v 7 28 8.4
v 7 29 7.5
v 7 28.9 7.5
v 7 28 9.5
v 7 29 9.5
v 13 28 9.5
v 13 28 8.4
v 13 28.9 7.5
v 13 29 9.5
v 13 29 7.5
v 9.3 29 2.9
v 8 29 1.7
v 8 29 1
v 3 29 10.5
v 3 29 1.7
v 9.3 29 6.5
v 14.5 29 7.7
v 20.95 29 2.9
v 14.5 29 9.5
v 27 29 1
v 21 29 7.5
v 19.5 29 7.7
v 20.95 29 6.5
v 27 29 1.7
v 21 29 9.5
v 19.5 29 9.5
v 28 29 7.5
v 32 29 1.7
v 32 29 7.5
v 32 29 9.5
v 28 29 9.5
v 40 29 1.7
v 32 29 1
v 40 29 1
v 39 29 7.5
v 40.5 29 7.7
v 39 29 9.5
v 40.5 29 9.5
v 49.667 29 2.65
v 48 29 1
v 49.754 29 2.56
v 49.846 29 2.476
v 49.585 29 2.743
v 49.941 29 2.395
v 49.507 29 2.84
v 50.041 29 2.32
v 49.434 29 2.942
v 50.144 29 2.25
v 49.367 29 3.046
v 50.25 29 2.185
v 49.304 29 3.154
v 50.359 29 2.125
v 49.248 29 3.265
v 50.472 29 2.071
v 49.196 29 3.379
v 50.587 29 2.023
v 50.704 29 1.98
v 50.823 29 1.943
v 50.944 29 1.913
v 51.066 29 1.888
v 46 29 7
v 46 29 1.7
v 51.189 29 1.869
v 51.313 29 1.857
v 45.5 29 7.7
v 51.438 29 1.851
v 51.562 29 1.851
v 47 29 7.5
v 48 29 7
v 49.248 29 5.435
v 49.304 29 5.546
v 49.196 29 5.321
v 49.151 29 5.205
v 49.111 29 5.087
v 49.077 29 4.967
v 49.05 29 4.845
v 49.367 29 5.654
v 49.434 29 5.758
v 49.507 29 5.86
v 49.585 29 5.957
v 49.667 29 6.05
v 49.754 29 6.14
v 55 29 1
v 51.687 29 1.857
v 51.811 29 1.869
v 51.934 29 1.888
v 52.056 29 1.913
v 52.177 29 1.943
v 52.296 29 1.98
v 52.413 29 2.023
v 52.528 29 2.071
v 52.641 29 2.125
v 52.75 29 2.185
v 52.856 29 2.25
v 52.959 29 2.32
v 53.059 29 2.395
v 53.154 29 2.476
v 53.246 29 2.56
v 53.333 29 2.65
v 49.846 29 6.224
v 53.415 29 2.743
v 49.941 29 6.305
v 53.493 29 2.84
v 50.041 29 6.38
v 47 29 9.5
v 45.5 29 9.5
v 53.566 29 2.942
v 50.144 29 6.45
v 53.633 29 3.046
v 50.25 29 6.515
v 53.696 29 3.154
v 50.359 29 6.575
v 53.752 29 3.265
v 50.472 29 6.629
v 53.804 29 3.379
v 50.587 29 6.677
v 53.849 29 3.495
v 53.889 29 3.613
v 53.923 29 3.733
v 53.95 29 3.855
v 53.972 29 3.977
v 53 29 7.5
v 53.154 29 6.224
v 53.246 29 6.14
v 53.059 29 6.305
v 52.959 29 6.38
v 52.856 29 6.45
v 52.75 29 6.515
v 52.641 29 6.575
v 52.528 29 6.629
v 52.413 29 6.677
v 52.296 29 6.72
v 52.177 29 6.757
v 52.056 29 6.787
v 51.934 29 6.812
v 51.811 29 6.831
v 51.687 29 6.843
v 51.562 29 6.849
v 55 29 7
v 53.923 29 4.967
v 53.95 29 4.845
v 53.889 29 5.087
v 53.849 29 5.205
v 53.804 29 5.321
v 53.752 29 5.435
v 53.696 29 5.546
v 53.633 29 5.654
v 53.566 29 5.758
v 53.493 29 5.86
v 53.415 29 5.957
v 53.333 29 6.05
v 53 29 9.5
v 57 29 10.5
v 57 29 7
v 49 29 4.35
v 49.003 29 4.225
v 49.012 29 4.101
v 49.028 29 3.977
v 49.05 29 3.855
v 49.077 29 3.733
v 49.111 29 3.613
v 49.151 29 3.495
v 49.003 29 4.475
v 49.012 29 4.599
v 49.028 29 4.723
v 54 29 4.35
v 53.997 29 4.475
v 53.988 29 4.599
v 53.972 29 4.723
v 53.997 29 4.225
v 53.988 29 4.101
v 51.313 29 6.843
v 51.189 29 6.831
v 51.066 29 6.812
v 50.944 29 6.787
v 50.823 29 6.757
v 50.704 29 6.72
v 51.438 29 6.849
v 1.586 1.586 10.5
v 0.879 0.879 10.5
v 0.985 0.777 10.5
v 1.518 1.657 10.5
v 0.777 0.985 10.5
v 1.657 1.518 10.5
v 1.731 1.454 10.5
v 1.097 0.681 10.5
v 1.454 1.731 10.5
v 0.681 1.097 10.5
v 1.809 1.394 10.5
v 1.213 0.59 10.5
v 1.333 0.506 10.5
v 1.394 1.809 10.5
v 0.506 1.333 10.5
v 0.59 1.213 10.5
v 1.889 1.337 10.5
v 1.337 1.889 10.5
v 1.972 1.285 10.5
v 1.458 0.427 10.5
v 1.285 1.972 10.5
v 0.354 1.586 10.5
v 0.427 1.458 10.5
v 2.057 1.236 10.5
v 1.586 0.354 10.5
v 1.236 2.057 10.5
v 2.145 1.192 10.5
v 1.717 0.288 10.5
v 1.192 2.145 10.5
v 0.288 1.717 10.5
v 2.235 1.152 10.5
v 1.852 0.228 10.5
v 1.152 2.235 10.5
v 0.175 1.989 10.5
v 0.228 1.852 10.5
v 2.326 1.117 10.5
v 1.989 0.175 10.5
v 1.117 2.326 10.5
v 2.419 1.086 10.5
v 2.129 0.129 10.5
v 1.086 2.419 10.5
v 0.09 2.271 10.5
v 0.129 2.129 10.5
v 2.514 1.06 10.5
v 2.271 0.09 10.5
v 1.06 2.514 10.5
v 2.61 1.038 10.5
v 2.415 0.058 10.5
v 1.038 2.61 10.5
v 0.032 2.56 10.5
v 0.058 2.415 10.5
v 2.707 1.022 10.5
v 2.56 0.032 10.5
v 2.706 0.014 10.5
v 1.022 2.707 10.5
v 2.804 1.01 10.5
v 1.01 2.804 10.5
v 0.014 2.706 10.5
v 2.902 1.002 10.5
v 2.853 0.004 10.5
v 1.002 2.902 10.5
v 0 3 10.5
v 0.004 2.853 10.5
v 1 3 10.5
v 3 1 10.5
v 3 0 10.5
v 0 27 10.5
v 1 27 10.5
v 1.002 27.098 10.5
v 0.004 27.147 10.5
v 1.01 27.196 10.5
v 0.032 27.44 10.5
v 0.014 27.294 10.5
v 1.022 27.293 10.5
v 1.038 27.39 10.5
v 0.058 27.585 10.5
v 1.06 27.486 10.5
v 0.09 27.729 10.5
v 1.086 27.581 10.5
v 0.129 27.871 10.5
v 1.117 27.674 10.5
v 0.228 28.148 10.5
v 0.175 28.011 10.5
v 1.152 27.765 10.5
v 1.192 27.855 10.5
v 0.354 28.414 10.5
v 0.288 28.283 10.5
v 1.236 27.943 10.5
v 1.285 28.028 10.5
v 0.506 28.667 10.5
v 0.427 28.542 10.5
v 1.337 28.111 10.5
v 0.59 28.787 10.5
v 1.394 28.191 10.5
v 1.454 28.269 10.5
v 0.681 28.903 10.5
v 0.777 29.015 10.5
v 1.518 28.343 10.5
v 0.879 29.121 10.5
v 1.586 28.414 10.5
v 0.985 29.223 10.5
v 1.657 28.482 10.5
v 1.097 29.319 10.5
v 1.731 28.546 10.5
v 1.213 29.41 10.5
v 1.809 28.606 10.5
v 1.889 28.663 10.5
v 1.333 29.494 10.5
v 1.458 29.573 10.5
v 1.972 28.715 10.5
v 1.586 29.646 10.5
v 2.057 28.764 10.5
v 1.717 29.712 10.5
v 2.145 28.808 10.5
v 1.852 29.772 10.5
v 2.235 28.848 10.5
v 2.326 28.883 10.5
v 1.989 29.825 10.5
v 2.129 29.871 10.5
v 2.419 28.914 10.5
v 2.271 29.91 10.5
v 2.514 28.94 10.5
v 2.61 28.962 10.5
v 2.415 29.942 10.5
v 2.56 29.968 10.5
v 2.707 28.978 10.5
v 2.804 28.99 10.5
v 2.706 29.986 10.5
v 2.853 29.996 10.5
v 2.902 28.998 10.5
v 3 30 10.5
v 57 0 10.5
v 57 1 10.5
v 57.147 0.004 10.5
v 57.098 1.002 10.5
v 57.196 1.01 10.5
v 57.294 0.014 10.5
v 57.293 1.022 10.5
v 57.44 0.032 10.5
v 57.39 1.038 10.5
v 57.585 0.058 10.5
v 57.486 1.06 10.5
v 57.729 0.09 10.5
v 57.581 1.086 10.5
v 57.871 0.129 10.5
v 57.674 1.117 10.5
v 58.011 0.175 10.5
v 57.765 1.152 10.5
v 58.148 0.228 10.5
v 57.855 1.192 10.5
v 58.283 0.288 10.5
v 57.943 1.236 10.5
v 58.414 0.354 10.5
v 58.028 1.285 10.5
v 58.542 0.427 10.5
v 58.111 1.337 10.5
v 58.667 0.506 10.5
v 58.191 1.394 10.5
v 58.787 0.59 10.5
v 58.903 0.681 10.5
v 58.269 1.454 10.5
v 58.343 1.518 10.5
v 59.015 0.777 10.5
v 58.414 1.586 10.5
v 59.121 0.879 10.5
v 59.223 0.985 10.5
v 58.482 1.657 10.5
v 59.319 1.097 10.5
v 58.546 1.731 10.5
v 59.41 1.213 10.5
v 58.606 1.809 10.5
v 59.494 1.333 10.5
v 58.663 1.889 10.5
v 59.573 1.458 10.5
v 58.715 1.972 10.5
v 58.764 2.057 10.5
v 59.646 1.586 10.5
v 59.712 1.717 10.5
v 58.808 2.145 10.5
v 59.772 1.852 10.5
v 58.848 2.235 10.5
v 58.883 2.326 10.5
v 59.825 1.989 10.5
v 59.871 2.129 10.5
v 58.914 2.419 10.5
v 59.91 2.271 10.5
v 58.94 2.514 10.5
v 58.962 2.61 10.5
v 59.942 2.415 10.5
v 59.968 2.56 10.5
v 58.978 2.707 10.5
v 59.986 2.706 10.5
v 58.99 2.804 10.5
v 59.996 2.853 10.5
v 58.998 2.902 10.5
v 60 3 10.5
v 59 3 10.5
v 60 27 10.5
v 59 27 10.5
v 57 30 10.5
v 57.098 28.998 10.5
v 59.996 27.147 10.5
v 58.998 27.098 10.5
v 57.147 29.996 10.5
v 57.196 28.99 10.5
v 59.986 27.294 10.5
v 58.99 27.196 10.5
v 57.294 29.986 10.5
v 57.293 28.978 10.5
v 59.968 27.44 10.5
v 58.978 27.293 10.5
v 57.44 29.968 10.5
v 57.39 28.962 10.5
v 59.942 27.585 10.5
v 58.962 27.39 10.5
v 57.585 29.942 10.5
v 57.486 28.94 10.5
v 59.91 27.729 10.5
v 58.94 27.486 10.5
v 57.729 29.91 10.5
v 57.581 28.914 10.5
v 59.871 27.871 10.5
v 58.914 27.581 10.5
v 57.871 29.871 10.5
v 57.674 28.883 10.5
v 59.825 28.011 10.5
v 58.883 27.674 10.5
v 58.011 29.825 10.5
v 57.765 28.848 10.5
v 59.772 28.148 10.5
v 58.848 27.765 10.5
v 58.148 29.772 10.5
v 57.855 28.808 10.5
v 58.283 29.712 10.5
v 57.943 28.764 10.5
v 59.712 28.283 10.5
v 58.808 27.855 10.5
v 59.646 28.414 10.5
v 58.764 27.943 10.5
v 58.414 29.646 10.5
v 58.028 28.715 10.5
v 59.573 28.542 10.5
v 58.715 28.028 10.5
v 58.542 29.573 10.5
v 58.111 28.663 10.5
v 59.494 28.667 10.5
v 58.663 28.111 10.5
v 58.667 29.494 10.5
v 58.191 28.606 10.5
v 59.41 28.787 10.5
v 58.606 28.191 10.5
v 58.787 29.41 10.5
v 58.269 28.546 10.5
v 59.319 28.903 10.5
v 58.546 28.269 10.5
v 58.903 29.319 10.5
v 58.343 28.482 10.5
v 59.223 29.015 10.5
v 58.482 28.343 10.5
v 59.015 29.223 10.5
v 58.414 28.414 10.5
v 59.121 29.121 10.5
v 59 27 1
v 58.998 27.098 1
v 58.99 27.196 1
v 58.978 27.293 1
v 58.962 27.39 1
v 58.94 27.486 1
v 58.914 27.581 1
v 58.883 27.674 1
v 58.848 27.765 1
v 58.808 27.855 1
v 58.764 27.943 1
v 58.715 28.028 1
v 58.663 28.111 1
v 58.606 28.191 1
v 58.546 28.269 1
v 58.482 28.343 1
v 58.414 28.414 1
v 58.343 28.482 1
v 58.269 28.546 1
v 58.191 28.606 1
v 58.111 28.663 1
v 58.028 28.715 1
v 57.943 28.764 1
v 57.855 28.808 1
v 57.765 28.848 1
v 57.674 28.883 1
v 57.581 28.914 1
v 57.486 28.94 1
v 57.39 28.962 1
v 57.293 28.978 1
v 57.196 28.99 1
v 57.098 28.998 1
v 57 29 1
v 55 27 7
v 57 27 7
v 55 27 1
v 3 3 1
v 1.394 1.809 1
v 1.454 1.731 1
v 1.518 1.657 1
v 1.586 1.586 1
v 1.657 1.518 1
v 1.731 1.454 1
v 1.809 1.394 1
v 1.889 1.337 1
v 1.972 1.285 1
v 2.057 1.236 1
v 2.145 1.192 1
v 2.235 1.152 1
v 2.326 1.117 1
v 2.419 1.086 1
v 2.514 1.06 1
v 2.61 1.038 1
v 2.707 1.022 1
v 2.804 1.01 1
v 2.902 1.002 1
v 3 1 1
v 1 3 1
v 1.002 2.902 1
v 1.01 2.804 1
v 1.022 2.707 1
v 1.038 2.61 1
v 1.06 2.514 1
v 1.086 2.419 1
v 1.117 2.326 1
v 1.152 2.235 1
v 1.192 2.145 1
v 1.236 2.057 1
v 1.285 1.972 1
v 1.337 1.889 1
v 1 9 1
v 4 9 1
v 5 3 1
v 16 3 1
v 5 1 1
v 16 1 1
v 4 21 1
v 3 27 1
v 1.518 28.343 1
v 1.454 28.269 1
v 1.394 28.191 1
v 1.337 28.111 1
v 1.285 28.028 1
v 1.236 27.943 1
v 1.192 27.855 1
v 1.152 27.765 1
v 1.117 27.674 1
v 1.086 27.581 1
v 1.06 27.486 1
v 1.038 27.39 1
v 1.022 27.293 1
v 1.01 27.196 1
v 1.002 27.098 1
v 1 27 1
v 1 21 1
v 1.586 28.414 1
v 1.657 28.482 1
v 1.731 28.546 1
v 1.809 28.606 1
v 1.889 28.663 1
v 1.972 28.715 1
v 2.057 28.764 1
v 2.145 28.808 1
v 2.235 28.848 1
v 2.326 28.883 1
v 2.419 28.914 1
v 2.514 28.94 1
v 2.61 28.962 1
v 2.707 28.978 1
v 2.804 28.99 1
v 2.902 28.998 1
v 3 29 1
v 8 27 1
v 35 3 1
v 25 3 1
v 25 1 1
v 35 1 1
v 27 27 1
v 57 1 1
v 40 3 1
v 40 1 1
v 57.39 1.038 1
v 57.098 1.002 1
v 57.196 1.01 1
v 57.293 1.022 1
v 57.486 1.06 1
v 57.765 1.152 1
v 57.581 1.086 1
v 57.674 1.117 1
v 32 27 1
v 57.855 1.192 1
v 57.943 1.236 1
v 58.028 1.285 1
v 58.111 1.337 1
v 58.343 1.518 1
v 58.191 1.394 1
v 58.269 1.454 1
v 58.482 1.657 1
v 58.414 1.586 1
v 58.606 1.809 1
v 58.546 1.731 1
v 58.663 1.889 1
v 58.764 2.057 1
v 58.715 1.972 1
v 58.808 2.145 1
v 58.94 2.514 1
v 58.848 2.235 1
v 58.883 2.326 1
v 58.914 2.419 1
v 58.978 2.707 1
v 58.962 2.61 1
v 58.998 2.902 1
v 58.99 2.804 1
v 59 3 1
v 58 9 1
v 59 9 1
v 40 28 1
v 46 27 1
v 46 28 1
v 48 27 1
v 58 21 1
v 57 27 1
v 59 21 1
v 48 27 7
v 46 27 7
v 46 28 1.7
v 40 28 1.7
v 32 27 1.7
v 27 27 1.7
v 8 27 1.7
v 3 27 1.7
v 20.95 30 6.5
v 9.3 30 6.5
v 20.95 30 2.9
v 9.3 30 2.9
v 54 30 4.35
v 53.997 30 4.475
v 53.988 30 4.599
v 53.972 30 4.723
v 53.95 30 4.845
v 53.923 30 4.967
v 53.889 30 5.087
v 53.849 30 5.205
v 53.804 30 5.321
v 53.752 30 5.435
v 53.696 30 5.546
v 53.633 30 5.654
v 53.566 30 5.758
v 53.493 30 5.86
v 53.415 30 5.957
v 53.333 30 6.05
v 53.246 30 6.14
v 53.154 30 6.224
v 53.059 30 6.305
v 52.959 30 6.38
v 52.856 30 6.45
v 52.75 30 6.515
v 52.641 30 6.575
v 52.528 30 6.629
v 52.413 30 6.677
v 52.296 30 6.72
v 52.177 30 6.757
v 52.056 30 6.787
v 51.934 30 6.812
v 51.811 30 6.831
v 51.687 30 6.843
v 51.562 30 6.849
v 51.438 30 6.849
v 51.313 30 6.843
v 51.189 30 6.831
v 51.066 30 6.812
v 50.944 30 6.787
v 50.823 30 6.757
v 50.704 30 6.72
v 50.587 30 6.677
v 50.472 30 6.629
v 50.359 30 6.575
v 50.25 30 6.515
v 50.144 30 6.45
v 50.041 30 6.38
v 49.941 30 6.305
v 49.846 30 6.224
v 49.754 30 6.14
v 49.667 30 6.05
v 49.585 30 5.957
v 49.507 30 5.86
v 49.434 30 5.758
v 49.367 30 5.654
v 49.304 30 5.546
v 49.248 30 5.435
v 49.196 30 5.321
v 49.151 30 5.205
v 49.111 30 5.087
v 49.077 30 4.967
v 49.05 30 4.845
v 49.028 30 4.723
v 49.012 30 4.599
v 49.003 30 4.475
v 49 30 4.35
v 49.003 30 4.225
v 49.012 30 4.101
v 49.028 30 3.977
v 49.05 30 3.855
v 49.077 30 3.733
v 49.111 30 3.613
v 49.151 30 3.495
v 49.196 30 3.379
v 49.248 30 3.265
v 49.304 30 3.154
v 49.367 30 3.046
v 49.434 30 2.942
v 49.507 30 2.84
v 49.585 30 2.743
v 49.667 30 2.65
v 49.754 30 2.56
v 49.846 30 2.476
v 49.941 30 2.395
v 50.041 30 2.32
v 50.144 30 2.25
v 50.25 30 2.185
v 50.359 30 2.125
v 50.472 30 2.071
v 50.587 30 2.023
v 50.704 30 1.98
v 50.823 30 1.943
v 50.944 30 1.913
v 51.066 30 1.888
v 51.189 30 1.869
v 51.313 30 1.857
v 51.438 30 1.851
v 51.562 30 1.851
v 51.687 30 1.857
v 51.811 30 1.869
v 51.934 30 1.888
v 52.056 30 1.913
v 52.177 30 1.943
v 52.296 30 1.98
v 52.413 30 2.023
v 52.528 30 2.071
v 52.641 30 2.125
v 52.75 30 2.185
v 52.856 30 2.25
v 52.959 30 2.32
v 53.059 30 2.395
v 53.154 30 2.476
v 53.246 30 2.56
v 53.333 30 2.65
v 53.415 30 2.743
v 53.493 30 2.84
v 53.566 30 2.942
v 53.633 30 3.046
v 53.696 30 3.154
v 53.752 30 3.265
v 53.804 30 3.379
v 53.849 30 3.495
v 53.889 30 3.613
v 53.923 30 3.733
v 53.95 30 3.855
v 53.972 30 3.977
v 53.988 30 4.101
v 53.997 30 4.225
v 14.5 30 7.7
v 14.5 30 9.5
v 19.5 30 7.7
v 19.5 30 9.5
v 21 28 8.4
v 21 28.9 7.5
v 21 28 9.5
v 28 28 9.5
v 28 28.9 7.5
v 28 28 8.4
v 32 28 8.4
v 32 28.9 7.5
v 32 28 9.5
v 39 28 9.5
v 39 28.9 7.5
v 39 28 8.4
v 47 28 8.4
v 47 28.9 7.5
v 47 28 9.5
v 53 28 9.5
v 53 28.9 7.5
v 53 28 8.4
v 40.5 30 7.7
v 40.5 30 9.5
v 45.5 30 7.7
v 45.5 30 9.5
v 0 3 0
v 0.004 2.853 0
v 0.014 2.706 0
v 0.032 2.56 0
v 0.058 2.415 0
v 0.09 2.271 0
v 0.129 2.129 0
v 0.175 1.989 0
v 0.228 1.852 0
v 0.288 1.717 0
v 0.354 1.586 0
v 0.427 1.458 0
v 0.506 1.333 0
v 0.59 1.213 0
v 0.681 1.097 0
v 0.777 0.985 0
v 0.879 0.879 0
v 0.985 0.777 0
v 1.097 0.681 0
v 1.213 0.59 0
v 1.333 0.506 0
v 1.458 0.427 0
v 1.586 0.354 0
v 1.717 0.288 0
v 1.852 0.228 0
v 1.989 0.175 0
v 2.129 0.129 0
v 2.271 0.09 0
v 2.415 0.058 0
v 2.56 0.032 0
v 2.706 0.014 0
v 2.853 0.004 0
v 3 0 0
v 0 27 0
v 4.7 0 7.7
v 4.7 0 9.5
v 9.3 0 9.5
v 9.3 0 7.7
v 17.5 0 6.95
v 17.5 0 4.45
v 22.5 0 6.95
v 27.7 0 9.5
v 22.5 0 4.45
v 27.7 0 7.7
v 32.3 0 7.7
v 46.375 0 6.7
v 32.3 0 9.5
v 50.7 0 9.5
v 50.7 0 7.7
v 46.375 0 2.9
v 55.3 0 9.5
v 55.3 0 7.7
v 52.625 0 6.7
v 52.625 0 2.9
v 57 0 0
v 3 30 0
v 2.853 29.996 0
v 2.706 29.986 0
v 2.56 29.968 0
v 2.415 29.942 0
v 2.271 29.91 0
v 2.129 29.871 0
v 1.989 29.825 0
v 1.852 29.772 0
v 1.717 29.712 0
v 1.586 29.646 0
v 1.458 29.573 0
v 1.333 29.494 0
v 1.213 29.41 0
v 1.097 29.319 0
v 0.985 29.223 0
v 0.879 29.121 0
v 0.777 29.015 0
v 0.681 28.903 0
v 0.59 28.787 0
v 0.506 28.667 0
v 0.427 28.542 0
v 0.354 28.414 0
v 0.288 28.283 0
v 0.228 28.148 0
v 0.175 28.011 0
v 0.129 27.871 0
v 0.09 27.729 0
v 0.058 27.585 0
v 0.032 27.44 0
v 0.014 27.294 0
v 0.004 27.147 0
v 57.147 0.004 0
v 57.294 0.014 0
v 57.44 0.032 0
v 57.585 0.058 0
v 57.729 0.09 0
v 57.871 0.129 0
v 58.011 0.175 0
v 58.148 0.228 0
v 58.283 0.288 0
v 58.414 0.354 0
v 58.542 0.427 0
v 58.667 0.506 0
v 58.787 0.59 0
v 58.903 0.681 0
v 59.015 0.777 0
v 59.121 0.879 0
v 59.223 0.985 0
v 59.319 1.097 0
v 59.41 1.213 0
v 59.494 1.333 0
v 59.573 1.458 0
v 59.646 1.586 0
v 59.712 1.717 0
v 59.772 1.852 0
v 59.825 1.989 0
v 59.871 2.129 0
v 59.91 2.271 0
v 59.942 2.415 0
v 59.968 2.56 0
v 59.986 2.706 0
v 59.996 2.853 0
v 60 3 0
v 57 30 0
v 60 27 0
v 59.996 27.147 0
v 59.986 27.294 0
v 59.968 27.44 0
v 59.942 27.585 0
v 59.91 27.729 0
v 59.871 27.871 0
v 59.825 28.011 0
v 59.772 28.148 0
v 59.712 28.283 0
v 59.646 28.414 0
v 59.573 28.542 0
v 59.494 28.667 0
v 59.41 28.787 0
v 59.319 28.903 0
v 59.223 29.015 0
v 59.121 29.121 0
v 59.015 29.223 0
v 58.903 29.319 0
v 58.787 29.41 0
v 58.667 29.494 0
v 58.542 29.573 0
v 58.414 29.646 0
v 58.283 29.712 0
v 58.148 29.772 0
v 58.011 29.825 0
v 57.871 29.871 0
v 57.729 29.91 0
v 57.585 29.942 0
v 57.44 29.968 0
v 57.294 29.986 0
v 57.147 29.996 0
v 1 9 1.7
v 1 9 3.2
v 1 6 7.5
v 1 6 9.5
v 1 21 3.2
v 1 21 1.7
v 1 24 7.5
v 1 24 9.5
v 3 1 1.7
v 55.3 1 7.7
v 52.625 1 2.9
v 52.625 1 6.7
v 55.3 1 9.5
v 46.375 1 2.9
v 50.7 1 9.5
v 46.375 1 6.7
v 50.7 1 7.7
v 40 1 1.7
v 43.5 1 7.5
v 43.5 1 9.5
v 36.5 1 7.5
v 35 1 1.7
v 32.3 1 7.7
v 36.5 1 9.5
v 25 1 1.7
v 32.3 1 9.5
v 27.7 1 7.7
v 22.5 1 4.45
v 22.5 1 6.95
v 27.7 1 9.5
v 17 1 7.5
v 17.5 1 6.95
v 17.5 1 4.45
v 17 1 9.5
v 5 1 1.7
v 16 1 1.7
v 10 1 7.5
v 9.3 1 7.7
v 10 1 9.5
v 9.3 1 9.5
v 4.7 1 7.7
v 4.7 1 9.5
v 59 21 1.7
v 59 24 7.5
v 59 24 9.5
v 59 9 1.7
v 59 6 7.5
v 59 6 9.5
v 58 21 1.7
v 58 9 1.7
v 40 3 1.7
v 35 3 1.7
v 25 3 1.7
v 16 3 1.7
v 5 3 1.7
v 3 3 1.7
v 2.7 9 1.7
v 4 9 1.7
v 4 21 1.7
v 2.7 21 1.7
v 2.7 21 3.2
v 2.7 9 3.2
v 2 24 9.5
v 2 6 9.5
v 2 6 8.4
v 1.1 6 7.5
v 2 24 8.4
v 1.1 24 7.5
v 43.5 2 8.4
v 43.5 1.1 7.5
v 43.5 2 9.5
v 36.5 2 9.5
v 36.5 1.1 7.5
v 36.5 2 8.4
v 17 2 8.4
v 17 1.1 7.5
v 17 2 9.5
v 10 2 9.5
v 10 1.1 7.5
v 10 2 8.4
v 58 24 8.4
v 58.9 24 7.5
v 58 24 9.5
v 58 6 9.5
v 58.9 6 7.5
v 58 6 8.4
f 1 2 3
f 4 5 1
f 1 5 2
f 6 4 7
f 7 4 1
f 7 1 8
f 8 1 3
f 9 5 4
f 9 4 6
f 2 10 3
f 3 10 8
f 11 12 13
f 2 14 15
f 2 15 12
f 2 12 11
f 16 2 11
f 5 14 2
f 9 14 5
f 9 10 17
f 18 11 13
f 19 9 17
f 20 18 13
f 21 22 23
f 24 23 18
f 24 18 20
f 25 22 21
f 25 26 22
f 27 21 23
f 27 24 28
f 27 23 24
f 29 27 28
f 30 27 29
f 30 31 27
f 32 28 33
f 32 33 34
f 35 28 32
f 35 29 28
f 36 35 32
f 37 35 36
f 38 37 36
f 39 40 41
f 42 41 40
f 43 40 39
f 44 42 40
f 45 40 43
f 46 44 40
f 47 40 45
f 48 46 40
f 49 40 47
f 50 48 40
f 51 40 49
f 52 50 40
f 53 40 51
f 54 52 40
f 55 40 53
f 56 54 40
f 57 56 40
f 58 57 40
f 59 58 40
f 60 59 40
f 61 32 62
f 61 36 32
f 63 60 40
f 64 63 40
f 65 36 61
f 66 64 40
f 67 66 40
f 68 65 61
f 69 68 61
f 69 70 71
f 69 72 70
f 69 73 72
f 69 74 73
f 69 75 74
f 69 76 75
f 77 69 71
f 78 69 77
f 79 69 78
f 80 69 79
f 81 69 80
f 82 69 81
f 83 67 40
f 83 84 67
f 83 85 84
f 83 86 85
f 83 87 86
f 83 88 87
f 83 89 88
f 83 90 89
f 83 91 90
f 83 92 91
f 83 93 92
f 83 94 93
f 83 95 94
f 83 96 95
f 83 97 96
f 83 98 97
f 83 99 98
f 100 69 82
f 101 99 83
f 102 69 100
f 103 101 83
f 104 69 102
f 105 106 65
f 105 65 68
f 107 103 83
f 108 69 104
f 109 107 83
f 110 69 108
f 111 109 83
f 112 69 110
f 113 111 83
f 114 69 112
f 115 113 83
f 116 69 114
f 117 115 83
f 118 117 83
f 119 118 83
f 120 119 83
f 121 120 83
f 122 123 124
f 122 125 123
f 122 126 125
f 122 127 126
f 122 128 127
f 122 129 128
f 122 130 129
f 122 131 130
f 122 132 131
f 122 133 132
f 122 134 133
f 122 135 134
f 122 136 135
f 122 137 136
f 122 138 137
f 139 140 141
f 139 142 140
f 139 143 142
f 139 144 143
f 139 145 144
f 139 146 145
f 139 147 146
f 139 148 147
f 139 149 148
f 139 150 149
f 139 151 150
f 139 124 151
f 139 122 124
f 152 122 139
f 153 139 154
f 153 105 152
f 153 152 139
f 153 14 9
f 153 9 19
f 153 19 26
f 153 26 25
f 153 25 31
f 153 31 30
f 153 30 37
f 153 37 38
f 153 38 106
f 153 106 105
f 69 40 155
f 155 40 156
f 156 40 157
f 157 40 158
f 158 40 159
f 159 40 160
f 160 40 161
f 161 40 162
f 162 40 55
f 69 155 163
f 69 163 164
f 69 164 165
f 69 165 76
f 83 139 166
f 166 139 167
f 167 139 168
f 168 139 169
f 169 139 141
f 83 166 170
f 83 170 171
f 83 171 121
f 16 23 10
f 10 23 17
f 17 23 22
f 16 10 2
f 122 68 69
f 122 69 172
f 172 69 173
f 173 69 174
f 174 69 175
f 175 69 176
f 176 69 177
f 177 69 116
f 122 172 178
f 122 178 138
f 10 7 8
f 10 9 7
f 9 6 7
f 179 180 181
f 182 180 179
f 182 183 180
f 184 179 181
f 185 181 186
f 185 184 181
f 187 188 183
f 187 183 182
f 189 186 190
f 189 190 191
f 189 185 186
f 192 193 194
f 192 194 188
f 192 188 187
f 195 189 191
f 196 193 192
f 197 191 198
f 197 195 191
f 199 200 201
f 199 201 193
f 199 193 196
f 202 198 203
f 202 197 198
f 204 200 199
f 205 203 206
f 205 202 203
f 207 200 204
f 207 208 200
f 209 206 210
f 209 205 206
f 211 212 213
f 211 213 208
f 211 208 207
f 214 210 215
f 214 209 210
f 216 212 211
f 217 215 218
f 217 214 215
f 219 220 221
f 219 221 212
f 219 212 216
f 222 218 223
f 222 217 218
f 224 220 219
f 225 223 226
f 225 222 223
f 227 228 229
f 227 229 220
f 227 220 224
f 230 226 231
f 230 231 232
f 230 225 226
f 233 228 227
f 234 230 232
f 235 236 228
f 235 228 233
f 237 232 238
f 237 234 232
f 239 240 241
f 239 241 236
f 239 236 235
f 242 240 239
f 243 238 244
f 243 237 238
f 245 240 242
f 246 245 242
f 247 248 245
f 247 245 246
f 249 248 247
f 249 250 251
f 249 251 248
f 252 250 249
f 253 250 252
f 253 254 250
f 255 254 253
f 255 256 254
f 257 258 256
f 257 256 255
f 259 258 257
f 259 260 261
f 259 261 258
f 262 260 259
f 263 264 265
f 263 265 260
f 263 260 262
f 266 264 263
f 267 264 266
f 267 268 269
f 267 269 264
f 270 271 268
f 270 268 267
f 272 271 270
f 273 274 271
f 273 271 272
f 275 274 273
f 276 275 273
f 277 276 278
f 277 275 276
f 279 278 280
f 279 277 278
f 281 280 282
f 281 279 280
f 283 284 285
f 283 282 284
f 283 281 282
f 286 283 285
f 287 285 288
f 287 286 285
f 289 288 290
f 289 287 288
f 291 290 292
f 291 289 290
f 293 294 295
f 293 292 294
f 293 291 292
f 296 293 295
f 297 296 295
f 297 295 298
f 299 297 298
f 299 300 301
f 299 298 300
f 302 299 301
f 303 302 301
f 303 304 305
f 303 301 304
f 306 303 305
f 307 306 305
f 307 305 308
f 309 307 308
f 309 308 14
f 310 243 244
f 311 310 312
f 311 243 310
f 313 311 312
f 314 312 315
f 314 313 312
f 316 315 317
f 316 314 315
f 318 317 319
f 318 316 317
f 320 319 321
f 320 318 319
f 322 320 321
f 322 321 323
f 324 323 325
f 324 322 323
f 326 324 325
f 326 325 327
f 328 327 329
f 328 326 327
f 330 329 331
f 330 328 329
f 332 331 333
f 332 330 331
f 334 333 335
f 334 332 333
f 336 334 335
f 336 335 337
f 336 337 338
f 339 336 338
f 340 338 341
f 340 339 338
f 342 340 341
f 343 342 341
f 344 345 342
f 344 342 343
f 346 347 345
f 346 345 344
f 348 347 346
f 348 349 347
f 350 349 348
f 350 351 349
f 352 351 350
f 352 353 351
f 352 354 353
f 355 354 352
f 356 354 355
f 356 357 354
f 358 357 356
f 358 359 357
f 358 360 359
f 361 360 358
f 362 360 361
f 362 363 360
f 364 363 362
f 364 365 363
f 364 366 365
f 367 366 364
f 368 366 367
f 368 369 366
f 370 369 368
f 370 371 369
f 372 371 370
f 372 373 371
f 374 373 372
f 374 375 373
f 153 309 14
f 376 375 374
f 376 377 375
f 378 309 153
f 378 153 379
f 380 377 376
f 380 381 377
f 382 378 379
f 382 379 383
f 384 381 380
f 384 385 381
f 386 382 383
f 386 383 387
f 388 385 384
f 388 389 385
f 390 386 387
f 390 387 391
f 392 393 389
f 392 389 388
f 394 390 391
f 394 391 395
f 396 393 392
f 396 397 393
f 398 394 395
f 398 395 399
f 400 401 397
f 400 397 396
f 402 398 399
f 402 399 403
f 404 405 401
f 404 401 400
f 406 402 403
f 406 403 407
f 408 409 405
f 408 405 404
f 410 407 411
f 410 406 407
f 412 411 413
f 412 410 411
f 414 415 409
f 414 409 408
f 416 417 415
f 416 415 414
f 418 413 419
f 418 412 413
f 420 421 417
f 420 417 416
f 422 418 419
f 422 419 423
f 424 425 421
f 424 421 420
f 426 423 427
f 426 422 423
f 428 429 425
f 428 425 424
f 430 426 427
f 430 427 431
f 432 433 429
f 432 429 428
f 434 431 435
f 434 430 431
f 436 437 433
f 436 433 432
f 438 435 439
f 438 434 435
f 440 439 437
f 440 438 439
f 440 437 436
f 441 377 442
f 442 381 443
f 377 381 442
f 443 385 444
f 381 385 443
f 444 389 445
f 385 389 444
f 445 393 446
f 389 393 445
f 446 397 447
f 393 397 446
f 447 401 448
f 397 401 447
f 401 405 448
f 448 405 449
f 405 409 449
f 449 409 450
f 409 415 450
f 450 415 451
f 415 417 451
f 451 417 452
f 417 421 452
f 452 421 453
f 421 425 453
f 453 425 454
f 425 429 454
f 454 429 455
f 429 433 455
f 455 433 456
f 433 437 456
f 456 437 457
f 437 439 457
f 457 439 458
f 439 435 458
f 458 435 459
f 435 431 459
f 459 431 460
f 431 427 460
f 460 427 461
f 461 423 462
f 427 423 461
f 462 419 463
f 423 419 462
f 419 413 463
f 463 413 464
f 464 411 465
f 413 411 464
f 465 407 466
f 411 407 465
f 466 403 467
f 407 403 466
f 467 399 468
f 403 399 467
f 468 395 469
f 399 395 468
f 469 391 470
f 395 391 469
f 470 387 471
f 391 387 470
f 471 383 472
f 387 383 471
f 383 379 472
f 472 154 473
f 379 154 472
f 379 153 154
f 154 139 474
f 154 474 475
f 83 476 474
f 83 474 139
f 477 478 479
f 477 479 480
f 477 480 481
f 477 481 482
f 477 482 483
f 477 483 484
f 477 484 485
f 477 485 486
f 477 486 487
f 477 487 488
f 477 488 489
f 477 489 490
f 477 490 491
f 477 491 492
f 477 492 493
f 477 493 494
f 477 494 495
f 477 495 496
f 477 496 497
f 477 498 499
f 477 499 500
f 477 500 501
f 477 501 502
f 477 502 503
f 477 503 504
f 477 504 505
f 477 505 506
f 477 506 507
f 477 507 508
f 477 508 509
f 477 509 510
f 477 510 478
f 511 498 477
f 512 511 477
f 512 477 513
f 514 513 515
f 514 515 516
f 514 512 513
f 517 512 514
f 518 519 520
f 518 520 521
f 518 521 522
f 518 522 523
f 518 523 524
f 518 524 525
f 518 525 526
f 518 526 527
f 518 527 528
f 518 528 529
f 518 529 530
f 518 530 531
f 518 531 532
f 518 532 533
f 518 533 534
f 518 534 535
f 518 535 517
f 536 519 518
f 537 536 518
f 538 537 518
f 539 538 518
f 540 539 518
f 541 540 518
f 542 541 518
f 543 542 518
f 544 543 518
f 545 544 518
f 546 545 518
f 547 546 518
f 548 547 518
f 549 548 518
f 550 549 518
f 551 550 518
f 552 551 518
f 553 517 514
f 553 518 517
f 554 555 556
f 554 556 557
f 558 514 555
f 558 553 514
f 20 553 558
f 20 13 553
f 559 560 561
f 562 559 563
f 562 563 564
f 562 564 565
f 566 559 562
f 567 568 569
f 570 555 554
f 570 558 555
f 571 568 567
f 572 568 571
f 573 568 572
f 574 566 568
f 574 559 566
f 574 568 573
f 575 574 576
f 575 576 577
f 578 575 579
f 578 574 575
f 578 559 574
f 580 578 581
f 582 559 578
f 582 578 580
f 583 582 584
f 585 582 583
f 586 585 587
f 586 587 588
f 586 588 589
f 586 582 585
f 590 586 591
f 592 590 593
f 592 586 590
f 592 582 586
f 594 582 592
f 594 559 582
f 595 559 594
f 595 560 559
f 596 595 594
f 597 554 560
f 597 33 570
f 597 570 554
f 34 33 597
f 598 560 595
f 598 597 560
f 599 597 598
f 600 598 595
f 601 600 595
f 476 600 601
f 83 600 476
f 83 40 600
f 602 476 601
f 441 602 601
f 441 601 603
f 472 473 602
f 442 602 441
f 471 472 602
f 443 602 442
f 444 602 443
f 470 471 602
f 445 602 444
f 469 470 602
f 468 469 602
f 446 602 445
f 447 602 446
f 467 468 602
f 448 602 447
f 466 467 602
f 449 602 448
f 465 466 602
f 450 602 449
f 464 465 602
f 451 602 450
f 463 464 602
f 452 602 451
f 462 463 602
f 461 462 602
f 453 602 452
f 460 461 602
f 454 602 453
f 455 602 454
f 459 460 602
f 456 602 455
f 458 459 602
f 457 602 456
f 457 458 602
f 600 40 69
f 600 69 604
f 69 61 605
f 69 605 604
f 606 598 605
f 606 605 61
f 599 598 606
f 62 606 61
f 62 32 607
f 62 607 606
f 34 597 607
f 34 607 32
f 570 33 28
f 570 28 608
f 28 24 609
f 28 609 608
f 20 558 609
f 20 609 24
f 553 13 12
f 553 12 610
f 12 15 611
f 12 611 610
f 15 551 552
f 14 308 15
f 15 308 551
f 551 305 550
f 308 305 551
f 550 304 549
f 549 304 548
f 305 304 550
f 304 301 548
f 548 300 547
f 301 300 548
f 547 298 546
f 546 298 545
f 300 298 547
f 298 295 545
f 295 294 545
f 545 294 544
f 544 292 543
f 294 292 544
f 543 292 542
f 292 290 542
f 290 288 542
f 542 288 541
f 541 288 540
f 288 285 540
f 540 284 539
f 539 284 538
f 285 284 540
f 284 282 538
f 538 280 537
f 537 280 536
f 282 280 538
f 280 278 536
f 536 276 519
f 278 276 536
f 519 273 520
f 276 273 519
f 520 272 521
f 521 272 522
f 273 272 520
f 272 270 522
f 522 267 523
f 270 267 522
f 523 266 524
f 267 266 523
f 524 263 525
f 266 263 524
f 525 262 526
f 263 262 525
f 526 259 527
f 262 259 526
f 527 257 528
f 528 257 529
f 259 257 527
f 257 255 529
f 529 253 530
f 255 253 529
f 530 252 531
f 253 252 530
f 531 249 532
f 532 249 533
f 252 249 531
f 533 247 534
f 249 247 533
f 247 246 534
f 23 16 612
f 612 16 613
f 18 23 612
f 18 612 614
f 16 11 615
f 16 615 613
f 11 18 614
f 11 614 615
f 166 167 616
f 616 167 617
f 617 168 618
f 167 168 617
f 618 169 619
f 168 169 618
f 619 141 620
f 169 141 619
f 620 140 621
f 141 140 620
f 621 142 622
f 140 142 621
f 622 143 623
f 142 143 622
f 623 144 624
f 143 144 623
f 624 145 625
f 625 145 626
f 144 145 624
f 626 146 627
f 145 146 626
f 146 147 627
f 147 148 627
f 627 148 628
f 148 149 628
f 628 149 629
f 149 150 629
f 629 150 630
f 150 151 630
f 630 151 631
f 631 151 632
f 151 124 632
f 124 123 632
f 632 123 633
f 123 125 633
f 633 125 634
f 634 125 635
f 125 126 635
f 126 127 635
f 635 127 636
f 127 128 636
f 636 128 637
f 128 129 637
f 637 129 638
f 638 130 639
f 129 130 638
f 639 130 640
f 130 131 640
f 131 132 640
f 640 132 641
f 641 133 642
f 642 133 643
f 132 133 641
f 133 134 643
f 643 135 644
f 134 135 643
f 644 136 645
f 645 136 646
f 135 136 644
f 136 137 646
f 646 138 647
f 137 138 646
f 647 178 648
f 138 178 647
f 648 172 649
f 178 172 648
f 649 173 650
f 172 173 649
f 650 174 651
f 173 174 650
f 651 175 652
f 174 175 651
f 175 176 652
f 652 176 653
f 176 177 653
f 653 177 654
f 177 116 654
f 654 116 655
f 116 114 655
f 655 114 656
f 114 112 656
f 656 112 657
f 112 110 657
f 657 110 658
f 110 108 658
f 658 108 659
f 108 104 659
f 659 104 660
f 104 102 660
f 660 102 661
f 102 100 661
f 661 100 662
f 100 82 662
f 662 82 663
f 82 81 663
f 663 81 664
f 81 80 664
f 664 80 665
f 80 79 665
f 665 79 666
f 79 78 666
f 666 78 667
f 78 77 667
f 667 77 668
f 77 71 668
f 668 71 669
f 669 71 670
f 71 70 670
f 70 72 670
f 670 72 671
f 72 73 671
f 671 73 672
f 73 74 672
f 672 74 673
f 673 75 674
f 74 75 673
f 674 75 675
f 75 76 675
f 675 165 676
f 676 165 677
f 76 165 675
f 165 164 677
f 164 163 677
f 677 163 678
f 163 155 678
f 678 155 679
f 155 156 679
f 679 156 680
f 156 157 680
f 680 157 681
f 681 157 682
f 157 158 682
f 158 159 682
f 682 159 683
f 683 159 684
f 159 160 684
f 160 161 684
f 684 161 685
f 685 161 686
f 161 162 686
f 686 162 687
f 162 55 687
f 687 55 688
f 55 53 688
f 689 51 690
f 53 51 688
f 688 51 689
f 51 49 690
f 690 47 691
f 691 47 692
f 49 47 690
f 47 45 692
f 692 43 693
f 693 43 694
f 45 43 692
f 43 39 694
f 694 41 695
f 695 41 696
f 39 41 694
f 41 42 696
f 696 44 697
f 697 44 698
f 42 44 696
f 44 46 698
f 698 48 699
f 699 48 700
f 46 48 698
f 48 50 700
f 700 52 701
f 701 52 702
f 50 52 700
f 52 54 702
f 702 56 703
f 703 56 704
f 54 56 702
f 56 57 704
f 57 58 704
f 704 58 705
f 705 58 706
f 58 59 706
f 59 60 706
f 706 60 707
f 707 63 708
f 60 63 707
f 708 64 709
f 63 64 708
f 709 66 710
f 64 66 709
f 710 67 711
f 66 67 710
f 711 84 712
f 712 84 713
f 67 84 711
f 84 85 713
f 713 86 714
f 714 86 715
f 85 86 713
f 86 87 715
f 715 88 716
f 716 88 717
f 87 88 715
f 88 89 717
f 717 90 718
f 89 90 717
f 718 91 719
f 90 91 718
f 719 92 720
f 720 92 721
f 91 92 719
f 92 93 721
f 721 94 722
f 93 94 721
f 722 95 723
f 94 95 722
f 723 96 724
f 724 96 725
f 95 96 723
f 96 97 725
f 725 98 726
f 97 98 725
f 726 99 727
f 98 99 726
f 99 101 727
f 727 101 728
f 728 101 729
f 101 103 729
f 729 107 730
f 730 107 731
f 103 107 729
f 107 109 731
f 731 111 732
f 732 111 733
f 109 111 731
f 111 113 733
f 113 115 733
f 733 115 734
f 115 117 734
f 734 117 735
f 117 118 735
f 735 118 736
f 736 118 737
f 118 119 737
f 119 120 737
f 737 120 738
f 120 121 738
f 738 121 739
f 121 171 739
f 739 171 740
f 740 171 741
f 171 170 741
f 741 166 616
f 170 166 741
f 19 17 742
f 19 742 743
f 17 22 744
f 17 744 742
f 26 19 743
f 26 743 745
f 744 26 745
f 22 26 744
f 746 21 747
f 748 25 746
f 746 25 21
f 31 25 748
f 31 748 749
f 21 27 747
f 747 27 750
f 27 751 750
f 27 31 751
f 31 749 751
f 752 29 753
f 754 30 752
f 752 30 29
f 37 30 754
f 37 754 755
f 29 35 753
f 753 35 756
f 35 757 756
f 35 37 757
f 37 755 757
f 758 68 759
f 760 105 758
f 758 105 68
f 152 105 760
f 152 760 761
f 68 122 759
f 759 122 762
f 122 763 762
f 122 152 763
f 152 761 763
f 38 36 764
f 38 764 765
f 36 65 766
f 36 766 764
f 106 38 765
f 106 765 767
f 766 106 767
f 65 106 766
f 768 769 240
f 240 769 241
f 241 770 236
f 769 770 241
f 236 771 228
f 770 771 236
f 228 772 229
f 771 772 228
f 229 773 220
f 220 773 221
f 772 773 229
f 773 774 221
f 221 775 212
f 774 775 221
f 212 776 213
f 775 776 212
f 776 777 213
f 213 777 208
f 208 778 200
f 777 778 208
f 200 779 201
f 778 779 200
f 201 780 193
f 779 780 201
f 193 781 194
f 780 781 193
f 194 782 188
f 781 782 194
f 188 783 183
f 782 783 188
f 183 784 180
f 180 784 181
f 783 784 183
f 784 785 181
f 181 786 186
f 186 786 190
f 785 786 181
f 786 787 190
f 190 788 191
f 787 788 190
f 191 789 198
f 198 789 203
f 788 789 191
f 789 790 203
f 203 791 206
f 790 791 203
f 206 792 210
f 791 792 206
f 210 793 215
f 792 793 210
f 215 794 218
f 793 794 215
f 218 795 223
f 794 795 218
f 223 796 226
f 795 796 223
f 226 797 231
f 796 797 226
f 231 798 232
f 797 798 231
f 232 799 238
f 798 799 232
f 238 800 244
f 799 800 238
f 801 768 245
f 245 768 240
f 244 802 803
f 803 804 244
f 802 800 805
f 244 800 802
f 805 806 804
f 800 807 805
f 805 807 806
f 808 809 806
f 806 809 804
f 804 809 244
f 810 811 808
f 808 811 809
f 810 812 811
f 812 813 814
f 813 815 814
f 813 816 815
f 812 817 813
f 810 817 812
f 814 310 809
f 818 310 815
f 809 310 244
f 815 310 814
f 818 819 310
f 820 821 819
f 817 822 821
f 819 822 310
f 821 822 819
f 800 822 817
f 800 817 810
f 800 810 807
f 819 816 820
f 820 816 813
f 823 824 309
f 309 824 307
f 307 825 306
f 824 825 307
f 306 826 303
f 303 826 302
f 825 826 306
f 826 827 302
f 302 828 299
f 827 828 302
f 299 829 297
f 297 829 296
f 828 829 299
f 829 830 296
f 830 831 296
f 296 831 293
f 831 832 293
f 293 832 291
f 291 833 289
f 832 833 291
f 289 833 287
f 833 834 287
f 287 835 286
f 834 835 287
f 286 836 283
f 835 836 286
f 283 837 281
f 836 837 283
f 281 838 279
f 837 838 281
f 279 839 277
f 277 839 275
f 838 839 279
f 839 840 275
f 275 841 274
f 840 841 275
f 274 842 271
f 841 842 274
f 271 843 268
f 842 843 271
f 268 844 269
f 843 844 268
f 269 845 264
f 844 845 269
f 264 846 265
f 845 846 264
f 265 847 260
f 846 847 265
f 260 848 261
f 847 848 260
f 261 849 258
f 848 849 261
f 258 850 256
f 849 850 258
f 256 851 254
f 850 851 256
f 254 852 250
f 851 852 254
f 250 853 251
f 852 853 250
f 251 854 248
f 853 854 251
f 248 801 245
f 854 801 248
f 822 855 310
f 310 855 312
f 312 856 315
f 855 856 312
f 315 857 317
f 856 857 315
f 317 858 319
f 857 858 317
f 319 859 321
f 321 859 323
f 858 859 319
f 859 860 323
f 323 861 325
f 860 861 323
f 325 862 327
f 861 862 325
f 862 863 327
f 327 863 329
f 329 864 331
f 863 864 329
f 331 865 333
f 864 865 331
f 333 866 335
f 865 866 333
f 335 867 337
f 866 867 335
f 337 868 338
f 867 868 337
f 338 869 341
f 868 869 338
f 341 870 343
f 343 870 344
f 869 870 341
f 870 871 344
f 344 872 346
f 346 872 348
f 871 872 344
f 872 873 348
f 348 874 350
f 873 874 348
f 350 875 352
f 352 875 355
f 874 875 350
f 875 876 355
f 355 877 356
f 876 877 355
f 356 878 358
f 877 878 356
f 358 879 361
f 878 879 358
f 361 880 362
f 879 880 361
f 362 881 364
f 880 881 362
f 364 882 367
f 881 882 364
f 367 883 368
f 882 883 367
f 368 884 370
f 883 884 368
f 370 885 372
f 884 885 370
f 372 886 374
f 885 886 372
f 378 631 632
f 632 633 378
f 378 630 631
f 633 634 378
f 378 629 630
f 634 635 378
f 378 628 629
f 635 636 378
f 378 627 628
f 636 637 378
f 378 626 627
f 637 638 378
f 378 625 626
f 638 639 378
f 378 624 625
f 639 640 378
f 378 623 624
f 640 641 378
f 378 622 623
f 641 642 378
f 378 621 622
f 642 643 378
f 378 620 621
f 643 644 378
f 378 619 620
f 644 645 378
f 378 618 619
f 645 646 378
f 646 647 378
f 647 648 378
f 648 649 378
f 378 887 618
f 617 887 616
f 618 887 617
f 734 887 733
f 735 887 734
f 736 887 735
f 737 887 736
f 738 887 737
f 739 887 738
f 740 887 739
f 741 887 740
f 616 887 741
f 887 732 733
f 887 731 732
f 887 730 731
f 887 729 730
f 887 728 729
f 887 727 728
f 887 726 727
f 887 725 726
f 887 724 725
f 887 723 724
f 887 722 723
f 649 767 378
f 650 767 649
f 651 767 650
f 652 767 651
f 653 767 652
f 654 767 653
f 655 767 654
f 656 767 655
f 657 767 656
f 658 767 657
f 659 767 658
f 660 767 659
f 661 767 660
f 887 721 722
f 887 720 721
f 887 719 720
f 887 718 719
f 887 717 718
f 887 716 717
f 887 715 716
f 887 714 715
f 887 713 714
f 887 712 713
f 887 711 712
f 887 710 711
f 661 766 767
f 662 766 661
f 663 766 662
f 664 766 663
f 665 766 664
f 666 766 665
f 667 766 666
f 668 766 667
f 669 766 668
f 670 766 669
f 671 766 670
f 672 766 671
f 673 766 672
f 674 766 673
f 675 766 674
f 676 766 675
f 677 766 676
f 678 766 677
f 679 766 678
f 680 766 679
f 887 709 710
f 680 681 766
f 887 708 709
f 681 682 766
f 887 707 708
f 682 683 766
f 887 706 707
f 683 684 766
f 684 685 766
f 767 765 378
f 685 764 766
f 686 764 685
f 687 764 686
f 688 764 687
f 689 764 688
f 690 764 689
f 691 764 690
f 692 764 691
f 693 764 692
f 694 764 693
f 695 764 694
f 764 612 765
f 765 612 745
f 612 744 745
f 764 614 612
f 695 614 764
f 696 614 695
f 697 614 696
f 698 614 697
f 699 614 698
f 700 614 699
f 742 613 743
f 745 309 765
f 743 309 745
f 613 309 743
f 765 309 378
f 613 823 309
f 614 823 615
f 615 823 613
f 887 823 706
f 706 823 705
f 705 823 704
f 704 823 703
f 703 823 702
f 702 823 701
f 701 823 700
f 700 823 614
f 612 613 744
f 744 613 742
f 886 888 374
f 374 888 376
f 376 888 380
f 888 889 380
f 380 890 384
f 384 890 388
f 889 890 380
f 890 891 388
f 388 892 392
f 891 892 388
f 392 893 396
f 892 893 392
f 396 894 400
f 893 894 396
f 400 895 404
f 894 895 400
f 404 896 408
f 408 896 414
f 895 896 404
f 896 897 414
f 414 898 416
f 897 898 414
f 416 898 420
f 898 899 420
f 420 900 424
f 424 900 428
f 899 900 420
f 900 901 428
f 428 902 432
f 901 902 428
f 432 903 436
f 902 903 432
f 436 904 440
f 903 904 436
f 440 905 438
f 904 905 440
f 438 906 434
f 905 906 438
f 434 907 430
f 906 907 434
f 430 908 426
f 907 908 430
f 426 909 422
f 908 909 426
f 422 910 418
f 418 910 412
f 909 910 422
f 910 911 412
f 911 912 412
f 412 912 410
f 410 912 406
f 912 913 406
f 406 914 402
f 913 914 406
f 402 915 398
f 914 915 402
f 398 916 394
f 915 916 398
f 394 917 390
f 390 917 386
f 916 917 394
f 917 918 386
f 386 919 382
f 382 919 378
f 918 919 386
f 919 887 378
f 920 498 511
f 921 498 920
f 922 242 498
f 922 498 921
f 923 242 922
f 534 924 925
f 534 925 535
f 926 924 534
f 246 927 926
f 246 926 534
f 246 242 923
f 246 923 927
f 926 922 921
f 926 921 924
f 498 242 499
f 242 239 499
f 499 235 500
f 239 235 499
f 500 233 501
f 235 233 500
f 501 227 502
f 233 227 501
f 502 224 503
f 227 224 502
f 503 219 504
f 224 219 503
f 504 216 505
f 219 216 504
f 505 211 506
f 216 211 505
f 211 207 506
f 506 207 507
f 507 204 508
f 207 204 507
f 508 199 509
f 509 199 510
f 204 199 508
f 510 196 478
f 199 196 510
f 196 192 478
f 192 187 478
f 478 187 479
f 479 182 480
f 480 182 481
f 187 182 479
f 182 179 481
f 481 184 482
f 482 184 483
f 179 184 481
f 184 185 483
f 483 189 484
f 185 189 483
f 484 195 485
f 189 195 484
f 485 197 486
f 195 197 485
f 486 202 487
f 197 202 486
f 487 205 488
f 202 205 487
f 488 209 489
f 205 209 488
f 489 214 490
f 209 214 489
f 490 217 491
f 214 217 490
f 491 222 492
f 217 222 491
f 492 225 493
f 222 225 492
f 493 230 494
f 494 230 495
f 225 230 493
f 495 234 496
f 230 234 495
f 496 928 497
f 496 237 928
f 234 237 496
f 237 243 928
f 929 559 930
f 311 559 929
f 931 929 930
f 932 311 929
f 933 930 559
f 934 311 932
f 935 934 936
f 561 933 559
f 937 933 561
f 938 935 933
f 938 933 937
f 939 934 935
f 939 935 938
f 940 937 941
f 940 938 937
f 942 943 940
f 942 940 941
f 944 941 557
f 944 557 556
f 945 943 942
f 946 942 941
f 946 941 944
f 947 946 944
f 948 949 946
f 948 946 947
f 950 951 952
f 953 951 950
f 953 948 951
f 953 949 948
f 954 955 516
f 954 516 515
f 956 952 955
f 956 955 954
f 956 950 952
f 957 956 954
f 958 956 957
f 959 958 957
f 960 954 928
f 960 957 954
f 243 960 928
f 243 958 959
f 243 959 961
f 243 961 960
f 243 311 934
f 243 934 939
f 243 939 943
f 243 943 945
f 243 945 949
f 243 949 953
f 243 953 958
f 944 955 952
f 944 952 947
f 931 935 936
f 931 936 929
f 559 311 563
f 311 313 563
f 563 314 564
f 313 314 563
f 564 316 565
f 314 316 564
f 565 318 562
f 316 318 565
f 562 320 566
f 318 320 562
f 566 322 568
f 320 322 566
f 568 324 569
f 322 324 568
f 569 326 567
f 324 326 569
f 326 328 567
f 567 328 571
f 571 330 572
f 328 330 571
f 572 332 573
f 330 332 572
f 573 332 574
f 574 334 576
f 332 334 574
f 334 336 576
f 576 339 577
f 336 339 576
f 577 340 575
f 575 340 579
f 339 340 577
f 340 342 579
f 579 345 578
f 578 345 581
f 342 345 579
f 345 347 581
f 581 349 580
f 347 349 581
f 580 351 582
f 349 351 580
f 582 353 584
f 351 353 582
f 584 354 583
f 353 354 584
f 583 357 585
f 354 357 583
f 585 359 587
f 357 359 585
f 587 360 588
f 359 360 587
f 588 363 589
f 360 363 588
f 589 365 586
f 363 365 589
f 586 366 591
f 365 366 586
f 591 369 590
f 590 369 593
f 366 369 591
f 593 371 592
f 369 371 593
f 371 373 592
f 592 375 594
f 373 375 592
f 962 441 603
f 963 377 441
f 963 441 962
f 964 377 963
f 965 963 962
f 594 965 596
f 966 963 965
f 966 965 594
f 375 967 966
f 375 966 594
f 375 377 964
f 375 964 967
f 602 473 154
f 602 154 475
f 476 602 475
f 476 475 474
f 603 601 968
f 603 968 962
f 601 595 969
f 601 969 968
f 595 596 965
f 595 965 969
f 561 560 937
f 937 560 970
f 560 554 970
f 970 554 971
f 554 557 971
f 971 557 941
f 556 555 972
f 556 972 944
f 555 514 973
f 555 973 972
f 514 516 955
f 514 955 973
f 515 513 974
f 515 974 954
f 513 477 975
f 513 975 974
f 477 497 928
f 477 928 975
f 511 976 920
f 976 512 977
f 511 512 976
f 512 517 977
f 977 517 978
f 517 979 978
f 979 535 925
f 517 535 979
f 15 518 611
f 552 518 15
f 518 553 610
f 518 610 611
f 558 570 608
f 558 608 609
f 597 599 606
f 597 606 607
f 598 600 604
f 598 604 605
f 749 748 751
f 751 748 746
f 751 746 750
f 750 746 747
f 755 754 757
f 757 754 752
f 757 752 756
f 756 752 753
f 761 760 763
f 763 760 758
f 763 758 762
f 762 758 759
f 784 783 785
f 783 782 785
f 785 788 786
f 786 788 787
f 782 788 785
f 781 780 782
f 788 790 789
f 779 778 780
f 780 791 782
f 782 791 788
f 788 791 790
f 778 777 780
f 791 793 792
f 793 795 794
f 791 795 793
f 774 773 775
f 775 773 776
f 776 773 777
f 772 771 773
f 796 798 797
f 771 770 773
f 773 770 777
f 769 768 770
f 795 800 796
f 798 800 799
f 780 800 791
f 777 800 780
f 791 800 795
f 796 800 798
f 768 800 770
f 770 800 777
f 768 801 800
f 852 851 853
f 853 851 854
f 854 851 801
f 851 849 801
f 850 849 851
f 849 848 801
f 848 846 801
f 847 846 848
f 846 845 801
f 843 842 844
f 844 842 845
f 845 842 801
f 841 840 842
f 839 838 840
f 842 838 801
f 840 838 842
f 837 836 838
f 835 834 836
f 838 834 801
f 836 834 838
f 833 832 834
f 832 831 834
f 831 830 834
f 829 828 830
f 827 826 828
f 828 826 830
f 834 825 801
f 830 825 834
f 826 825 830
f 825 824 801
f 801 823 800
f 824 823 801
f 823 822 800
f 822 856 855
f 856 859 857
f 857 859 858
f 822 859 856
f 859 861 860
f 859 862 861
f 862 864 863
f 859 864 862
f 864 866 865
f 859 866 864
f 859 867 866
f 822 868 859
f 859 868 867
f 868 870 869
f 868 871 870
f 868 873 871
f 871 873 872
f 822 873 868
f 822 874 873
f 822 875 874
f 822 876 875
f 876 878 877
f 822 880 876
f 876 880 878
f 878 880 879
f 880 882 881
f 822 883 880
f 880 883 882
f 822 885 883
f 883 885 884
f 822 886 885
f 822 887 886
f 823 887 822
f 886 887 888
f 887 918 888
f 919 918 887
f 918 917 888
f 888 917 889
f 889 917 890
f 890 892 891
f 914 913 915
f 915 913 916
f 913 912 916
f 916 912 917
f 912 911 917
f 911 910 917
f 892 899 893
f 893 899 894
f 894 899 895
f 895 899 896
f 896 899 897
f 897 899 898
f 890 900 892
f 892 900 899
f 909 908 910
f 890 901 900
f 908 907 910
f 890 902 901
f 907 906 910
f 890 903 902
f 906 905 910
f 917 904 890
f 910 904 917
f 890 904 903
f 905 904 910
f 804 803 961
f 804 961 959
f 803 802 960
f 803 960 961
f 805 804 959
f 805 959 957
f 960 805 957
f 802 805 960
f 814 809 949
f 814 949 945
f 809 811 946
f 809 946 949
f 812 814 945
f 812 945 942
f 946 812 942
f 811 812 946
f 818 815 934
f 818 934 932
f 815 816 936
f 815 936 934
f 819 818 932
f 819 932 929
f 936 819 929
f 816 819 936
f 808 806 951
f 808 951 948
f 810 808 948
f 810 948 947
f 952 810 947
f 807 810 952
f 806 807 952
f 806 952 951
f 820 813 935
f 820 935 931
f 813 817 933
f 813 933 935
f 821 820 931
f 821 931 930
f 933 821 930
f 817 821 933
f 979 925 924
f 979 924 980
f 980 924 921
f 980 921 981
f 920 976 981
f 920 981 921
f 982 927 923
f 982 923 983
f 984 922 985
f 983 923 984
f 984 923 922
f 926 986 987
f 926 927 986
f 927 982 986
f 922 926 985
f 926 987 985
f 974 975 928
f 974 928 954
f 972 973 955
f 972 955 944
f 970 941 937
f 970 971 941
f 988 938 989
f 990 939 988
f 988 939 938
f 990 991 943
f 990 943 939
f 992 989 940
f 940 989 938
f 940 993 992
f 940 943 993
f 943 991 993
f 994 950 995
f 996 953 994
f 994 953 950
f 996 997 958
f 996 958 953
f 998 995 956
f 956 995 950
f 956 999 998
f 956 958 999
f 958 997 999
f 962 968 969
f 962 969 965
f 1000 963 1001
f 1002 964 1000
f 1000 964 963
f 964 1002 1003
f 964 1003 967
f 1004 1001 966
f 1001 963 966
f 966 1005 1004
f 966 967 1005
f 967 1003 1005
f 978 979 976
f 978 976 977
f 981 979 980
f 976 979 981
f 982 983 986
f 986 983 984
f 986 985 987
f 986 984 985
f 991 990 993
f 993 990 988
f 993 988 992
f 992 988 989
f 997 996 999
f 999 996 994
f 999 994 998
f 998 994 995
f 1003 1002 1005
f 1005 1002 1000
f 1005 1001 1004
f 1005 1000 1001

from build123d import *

# Parameters (mm, degrees)
PAD_DEPTH       = 10.5
POCKET_DEPTH    = 9.5
SKETCH002_W     = 4.6
SKETCH002_H     = 1.8
POCKET001_DEPTH = 1
SKETCH003_W     = 5
SKETCH003_H     = 1.8
POCKET002_DEPTH = 1
SKETCH004_W     = 1
SKETCH004_H     = 18
SKETCH004_W_2   = 7
SKETCH004_H_2   = 1
SKETCH004_W_3   = 6
PAD001_DEPTH    = 2
CHAMFER_SIZE    = 0.9
SKETCH005_R     = 2.5
SKETCH005_W     = 11.65
SKETCH005_H     = 3.6
POCKET003_DEPTH = 2.001
SKETCH006_W     = 6.25
SKETCH006_H     = 3.8
SKETCH006_W_2   = 5
SKETCH006_H_2   = 2.5
POCKET004_DEPTH = 1
SKETCH007_W     = 3
SKETCH007_H     = 12
SKETCH007_W_2   = 5
SKETCH007_H_2   = 2
SKETCH007_W_3   = 7
SKETCH007_H_3   = 1
SKETCH007_W_4   = 1
SKETCH007_W_5   = 2
SKETCH007_W_6   = 9
PAD002_DEPTH    = 0.7
SKETCH009_W     = 2
SKETCH009_H     = 2
PAD003_DEPTH    = 6
SKETCH010_W     = 1.7
SKETCH010_H     = 12
PAD004_DEPTH    = 1.5


with BuildPart() as part:
    # Sketch → Pad (new body)
    with BuildSketch(Plane.XY):
        with BuildLine():
            ThreePointArc((0, 3), (0.87868, 0.87868), (3, 0))
            Line((3, 0), (57, 0))
            ThreePointArc((57, 0), (59.12132, 0.87868), (60, 3))
            Line((60, 3), (60, 27))
            ThreePointArc((60, 27), (59.12132, 29.12132), (57, 30))
            Line((57, 30), (3, 30))
            ThreePointArc((3, 30), (0.87868, 29.12132), (0, 27))
            Line((0, 27), (0, 3))
        make_face()
    extrude(amount=PAD_DEPTH)

    # Sketch001 (on Face10 of Pad) → Pocket (cut)
    with BuildSketch(Plane.XY.offset(10.5)):
        with BuildLine():
            ThreePointArc((3, 29), (1.585786, 28.414214), (1, 27))
            Line((1, 3), (1, 27))
            ThreePointArc((1, 3), (1.585786, 1.585786), (3, 1))
            Line((57, 1), (3, 1))
            ThreePointArc((57, 1), (58.414214, 1.585786), (59, 3))
            Line((59, 27), (59, 3))
            ThreePointArc((59, 27), (58.414211, 28.414216), (56.999993, 29))
            Line((3, 29), (56.999993, 29))
        make_face()
    extrude(amount=-POCKET_DEPTH, mode=Mode.SUBTRACT)

    # Sketch002 → Pocket001 (cut)
    with BuildSketch(Plane.XZ):
        with Locations((7, 8.6)):
            Rectangle(SKETCH002_W, SKETCH002_H)
        with Locations((30, 8.6)):
            Rectangle(SKETCH002_W, SKETCH002_H)
        with Locations((53, 8.6)):
            Rectangle(SKETCH002_W, SKETCH002_H)
    extrude(amount=-POCKET001_DEPTH, mode=Mode.SUBTRACT)

    # Sketch003 (on Face24 of Pocket001) → Pocket002 (cut)
    with BuildSketch(Plane.XZ.offset(-29)):
        with Locations((17, 8.6)):
            Rectangle(SKETCH003_W, SKETCH003_H)
        with Locations((43, 8.6)):
            Rectangle(SKETCH003_W, SKETCH003_H)
    extrude(amount=-POCKET002_DEPTH, mode=Mode.SUBTRACT)

    # Sketch004 → Pad001 (join)
    with BuildSketch(Plane.XY.offset(9.5)):
        with Locations((1.5, 15)):
            Rectangle(SKETCH004_W, SKETCH004_H)
        with Locations((13.5, 1.5)):
            Rectangle(SKETCH004_W_2, SKETCH004_H_2)
        with Locations((40, 1.5)):
            Rectangle(SKETCH004_W_2, SKETCH004_H_2)
        with Locations((24.5, 28.5)):
            Rectangle(SKETCH004_W_2, SKETCH004_H_2)
        with Locations((50, 28.5)):
            Rectangle(SKETCH004_W_3, SKETCH004_H_2)
        with Locations((58.5, 15)):
            Rectangle(SKETCH004_W, SKETCH004_H)
        with Locations((10, 28.5)):
            Rectangle(SKETCH004_W_3, SKETCH004_H_2)
        with Locations((35.5, 28.5)):
            Rectangle(SKETCH004_W_2, SKETCH004_H_2)
    extrude(amount=-PAD001_DEPTH)

    # Chamfer
    chamfer_edges = [part.edges().sort_by_distance(p)[0] for p in [
        (40, 2, 7.5),
        (13.5, 2, 7.5),
        (58, 15, 7.5),
        (2, 15, 7.5),
        (10, 28, 7.5),
        (24.5, 28, 7.5),
        (35.5, 28, 7.5),
        (50, 28, 7.5),
    ]]
    chamfer(chamfer_edges, length=CHAMFER_SIZE)

    # Sketch005 → Pocket003 (cut, through all)
    with BuildSketch(Plane.XZ.offset(-28)):
        with Locations((51.5, 4.35)):
            Circle(SKETCH005_R)
        with Locations((15.125, 4.7)):
            Rectangle(SKETCH005_W, SKETCH005_H)
    extrude(amount=-POCKET003_DEPTH, mode=Mode.SUBTRACT)

    # Sketch006 → Pocket004 (cut)
    with BuildSketch(Plane.XZ):
        with Locations((49.5, 4.8)):
            Rectangle(SKETCH006_W, SKETCH006_H)
        with Locations((20, 5.7)):
            Rectangle(SKETCH006_W_2, SKETCH006_H_2)
    extrude(amount=-POCKET004_DEPTH, mode=Mode.SUBTRACT)

    # Sketch007 (on Face10 of Pocket004) → Pad002 (join)
    with BuildSketch(Plane.XY.offset(1)):
        with Locations((2.5, 15)):
            Rectangle(SKETCH007_W, SKETCH007_H)
        with Locations((37.5, 2)):
            Rectangle(SKETCH007_W_2, SKETCH007_H_2)
        with Locations((43.5, 28.5)):
            Rectangle(SKETCH007_W_3, SKETCH007_H_3)
        with Locations((5.5, 28)):
            Rectangle(SKETCH007_W_2, SKETCH007_H_2)
        with Locations((58.5, 15)):
            Rectangle(SKETCH007_W_4, SKETCH007_H)
        with Locations((4, 2)):
            Rectangle(SKETCH007_W_5, SKETCH007_H_2)
        with Locations((29.5, 28)):
            Rectangle(SKETCH007_W_2, SKETCH007_H_2)
        with Locations((20.5, 2)):
            Rectangle(SKETCH007_W_6, SKETCH007_H_2)
    extrude(amount=PAD002_DEPTH)

    # Sketch009 → Pad003 (join)
    with BuildSketch(Plane.XY.offset(1)):
        with Locations((47, 28)):
            Rectangle(SKETCH009_W, SKETCH009_H)
        with Locations((56, 28)):
            Rectangle(SKETCH009_W, SKETCH009_H)
    extrude(amount=PAD003_DEPTH)

    # Sketch010 (on Face111 of Pad003) → Pad004 (join)
    with BuildSketch(Plane.XY.offset(1.7)):
        with Locations((1.85, 15)):
            Rectangle(SKETCH010_W, SKETCH010_H)
    extrude(amount=PAD004_DEPTH)


solid = part.part
